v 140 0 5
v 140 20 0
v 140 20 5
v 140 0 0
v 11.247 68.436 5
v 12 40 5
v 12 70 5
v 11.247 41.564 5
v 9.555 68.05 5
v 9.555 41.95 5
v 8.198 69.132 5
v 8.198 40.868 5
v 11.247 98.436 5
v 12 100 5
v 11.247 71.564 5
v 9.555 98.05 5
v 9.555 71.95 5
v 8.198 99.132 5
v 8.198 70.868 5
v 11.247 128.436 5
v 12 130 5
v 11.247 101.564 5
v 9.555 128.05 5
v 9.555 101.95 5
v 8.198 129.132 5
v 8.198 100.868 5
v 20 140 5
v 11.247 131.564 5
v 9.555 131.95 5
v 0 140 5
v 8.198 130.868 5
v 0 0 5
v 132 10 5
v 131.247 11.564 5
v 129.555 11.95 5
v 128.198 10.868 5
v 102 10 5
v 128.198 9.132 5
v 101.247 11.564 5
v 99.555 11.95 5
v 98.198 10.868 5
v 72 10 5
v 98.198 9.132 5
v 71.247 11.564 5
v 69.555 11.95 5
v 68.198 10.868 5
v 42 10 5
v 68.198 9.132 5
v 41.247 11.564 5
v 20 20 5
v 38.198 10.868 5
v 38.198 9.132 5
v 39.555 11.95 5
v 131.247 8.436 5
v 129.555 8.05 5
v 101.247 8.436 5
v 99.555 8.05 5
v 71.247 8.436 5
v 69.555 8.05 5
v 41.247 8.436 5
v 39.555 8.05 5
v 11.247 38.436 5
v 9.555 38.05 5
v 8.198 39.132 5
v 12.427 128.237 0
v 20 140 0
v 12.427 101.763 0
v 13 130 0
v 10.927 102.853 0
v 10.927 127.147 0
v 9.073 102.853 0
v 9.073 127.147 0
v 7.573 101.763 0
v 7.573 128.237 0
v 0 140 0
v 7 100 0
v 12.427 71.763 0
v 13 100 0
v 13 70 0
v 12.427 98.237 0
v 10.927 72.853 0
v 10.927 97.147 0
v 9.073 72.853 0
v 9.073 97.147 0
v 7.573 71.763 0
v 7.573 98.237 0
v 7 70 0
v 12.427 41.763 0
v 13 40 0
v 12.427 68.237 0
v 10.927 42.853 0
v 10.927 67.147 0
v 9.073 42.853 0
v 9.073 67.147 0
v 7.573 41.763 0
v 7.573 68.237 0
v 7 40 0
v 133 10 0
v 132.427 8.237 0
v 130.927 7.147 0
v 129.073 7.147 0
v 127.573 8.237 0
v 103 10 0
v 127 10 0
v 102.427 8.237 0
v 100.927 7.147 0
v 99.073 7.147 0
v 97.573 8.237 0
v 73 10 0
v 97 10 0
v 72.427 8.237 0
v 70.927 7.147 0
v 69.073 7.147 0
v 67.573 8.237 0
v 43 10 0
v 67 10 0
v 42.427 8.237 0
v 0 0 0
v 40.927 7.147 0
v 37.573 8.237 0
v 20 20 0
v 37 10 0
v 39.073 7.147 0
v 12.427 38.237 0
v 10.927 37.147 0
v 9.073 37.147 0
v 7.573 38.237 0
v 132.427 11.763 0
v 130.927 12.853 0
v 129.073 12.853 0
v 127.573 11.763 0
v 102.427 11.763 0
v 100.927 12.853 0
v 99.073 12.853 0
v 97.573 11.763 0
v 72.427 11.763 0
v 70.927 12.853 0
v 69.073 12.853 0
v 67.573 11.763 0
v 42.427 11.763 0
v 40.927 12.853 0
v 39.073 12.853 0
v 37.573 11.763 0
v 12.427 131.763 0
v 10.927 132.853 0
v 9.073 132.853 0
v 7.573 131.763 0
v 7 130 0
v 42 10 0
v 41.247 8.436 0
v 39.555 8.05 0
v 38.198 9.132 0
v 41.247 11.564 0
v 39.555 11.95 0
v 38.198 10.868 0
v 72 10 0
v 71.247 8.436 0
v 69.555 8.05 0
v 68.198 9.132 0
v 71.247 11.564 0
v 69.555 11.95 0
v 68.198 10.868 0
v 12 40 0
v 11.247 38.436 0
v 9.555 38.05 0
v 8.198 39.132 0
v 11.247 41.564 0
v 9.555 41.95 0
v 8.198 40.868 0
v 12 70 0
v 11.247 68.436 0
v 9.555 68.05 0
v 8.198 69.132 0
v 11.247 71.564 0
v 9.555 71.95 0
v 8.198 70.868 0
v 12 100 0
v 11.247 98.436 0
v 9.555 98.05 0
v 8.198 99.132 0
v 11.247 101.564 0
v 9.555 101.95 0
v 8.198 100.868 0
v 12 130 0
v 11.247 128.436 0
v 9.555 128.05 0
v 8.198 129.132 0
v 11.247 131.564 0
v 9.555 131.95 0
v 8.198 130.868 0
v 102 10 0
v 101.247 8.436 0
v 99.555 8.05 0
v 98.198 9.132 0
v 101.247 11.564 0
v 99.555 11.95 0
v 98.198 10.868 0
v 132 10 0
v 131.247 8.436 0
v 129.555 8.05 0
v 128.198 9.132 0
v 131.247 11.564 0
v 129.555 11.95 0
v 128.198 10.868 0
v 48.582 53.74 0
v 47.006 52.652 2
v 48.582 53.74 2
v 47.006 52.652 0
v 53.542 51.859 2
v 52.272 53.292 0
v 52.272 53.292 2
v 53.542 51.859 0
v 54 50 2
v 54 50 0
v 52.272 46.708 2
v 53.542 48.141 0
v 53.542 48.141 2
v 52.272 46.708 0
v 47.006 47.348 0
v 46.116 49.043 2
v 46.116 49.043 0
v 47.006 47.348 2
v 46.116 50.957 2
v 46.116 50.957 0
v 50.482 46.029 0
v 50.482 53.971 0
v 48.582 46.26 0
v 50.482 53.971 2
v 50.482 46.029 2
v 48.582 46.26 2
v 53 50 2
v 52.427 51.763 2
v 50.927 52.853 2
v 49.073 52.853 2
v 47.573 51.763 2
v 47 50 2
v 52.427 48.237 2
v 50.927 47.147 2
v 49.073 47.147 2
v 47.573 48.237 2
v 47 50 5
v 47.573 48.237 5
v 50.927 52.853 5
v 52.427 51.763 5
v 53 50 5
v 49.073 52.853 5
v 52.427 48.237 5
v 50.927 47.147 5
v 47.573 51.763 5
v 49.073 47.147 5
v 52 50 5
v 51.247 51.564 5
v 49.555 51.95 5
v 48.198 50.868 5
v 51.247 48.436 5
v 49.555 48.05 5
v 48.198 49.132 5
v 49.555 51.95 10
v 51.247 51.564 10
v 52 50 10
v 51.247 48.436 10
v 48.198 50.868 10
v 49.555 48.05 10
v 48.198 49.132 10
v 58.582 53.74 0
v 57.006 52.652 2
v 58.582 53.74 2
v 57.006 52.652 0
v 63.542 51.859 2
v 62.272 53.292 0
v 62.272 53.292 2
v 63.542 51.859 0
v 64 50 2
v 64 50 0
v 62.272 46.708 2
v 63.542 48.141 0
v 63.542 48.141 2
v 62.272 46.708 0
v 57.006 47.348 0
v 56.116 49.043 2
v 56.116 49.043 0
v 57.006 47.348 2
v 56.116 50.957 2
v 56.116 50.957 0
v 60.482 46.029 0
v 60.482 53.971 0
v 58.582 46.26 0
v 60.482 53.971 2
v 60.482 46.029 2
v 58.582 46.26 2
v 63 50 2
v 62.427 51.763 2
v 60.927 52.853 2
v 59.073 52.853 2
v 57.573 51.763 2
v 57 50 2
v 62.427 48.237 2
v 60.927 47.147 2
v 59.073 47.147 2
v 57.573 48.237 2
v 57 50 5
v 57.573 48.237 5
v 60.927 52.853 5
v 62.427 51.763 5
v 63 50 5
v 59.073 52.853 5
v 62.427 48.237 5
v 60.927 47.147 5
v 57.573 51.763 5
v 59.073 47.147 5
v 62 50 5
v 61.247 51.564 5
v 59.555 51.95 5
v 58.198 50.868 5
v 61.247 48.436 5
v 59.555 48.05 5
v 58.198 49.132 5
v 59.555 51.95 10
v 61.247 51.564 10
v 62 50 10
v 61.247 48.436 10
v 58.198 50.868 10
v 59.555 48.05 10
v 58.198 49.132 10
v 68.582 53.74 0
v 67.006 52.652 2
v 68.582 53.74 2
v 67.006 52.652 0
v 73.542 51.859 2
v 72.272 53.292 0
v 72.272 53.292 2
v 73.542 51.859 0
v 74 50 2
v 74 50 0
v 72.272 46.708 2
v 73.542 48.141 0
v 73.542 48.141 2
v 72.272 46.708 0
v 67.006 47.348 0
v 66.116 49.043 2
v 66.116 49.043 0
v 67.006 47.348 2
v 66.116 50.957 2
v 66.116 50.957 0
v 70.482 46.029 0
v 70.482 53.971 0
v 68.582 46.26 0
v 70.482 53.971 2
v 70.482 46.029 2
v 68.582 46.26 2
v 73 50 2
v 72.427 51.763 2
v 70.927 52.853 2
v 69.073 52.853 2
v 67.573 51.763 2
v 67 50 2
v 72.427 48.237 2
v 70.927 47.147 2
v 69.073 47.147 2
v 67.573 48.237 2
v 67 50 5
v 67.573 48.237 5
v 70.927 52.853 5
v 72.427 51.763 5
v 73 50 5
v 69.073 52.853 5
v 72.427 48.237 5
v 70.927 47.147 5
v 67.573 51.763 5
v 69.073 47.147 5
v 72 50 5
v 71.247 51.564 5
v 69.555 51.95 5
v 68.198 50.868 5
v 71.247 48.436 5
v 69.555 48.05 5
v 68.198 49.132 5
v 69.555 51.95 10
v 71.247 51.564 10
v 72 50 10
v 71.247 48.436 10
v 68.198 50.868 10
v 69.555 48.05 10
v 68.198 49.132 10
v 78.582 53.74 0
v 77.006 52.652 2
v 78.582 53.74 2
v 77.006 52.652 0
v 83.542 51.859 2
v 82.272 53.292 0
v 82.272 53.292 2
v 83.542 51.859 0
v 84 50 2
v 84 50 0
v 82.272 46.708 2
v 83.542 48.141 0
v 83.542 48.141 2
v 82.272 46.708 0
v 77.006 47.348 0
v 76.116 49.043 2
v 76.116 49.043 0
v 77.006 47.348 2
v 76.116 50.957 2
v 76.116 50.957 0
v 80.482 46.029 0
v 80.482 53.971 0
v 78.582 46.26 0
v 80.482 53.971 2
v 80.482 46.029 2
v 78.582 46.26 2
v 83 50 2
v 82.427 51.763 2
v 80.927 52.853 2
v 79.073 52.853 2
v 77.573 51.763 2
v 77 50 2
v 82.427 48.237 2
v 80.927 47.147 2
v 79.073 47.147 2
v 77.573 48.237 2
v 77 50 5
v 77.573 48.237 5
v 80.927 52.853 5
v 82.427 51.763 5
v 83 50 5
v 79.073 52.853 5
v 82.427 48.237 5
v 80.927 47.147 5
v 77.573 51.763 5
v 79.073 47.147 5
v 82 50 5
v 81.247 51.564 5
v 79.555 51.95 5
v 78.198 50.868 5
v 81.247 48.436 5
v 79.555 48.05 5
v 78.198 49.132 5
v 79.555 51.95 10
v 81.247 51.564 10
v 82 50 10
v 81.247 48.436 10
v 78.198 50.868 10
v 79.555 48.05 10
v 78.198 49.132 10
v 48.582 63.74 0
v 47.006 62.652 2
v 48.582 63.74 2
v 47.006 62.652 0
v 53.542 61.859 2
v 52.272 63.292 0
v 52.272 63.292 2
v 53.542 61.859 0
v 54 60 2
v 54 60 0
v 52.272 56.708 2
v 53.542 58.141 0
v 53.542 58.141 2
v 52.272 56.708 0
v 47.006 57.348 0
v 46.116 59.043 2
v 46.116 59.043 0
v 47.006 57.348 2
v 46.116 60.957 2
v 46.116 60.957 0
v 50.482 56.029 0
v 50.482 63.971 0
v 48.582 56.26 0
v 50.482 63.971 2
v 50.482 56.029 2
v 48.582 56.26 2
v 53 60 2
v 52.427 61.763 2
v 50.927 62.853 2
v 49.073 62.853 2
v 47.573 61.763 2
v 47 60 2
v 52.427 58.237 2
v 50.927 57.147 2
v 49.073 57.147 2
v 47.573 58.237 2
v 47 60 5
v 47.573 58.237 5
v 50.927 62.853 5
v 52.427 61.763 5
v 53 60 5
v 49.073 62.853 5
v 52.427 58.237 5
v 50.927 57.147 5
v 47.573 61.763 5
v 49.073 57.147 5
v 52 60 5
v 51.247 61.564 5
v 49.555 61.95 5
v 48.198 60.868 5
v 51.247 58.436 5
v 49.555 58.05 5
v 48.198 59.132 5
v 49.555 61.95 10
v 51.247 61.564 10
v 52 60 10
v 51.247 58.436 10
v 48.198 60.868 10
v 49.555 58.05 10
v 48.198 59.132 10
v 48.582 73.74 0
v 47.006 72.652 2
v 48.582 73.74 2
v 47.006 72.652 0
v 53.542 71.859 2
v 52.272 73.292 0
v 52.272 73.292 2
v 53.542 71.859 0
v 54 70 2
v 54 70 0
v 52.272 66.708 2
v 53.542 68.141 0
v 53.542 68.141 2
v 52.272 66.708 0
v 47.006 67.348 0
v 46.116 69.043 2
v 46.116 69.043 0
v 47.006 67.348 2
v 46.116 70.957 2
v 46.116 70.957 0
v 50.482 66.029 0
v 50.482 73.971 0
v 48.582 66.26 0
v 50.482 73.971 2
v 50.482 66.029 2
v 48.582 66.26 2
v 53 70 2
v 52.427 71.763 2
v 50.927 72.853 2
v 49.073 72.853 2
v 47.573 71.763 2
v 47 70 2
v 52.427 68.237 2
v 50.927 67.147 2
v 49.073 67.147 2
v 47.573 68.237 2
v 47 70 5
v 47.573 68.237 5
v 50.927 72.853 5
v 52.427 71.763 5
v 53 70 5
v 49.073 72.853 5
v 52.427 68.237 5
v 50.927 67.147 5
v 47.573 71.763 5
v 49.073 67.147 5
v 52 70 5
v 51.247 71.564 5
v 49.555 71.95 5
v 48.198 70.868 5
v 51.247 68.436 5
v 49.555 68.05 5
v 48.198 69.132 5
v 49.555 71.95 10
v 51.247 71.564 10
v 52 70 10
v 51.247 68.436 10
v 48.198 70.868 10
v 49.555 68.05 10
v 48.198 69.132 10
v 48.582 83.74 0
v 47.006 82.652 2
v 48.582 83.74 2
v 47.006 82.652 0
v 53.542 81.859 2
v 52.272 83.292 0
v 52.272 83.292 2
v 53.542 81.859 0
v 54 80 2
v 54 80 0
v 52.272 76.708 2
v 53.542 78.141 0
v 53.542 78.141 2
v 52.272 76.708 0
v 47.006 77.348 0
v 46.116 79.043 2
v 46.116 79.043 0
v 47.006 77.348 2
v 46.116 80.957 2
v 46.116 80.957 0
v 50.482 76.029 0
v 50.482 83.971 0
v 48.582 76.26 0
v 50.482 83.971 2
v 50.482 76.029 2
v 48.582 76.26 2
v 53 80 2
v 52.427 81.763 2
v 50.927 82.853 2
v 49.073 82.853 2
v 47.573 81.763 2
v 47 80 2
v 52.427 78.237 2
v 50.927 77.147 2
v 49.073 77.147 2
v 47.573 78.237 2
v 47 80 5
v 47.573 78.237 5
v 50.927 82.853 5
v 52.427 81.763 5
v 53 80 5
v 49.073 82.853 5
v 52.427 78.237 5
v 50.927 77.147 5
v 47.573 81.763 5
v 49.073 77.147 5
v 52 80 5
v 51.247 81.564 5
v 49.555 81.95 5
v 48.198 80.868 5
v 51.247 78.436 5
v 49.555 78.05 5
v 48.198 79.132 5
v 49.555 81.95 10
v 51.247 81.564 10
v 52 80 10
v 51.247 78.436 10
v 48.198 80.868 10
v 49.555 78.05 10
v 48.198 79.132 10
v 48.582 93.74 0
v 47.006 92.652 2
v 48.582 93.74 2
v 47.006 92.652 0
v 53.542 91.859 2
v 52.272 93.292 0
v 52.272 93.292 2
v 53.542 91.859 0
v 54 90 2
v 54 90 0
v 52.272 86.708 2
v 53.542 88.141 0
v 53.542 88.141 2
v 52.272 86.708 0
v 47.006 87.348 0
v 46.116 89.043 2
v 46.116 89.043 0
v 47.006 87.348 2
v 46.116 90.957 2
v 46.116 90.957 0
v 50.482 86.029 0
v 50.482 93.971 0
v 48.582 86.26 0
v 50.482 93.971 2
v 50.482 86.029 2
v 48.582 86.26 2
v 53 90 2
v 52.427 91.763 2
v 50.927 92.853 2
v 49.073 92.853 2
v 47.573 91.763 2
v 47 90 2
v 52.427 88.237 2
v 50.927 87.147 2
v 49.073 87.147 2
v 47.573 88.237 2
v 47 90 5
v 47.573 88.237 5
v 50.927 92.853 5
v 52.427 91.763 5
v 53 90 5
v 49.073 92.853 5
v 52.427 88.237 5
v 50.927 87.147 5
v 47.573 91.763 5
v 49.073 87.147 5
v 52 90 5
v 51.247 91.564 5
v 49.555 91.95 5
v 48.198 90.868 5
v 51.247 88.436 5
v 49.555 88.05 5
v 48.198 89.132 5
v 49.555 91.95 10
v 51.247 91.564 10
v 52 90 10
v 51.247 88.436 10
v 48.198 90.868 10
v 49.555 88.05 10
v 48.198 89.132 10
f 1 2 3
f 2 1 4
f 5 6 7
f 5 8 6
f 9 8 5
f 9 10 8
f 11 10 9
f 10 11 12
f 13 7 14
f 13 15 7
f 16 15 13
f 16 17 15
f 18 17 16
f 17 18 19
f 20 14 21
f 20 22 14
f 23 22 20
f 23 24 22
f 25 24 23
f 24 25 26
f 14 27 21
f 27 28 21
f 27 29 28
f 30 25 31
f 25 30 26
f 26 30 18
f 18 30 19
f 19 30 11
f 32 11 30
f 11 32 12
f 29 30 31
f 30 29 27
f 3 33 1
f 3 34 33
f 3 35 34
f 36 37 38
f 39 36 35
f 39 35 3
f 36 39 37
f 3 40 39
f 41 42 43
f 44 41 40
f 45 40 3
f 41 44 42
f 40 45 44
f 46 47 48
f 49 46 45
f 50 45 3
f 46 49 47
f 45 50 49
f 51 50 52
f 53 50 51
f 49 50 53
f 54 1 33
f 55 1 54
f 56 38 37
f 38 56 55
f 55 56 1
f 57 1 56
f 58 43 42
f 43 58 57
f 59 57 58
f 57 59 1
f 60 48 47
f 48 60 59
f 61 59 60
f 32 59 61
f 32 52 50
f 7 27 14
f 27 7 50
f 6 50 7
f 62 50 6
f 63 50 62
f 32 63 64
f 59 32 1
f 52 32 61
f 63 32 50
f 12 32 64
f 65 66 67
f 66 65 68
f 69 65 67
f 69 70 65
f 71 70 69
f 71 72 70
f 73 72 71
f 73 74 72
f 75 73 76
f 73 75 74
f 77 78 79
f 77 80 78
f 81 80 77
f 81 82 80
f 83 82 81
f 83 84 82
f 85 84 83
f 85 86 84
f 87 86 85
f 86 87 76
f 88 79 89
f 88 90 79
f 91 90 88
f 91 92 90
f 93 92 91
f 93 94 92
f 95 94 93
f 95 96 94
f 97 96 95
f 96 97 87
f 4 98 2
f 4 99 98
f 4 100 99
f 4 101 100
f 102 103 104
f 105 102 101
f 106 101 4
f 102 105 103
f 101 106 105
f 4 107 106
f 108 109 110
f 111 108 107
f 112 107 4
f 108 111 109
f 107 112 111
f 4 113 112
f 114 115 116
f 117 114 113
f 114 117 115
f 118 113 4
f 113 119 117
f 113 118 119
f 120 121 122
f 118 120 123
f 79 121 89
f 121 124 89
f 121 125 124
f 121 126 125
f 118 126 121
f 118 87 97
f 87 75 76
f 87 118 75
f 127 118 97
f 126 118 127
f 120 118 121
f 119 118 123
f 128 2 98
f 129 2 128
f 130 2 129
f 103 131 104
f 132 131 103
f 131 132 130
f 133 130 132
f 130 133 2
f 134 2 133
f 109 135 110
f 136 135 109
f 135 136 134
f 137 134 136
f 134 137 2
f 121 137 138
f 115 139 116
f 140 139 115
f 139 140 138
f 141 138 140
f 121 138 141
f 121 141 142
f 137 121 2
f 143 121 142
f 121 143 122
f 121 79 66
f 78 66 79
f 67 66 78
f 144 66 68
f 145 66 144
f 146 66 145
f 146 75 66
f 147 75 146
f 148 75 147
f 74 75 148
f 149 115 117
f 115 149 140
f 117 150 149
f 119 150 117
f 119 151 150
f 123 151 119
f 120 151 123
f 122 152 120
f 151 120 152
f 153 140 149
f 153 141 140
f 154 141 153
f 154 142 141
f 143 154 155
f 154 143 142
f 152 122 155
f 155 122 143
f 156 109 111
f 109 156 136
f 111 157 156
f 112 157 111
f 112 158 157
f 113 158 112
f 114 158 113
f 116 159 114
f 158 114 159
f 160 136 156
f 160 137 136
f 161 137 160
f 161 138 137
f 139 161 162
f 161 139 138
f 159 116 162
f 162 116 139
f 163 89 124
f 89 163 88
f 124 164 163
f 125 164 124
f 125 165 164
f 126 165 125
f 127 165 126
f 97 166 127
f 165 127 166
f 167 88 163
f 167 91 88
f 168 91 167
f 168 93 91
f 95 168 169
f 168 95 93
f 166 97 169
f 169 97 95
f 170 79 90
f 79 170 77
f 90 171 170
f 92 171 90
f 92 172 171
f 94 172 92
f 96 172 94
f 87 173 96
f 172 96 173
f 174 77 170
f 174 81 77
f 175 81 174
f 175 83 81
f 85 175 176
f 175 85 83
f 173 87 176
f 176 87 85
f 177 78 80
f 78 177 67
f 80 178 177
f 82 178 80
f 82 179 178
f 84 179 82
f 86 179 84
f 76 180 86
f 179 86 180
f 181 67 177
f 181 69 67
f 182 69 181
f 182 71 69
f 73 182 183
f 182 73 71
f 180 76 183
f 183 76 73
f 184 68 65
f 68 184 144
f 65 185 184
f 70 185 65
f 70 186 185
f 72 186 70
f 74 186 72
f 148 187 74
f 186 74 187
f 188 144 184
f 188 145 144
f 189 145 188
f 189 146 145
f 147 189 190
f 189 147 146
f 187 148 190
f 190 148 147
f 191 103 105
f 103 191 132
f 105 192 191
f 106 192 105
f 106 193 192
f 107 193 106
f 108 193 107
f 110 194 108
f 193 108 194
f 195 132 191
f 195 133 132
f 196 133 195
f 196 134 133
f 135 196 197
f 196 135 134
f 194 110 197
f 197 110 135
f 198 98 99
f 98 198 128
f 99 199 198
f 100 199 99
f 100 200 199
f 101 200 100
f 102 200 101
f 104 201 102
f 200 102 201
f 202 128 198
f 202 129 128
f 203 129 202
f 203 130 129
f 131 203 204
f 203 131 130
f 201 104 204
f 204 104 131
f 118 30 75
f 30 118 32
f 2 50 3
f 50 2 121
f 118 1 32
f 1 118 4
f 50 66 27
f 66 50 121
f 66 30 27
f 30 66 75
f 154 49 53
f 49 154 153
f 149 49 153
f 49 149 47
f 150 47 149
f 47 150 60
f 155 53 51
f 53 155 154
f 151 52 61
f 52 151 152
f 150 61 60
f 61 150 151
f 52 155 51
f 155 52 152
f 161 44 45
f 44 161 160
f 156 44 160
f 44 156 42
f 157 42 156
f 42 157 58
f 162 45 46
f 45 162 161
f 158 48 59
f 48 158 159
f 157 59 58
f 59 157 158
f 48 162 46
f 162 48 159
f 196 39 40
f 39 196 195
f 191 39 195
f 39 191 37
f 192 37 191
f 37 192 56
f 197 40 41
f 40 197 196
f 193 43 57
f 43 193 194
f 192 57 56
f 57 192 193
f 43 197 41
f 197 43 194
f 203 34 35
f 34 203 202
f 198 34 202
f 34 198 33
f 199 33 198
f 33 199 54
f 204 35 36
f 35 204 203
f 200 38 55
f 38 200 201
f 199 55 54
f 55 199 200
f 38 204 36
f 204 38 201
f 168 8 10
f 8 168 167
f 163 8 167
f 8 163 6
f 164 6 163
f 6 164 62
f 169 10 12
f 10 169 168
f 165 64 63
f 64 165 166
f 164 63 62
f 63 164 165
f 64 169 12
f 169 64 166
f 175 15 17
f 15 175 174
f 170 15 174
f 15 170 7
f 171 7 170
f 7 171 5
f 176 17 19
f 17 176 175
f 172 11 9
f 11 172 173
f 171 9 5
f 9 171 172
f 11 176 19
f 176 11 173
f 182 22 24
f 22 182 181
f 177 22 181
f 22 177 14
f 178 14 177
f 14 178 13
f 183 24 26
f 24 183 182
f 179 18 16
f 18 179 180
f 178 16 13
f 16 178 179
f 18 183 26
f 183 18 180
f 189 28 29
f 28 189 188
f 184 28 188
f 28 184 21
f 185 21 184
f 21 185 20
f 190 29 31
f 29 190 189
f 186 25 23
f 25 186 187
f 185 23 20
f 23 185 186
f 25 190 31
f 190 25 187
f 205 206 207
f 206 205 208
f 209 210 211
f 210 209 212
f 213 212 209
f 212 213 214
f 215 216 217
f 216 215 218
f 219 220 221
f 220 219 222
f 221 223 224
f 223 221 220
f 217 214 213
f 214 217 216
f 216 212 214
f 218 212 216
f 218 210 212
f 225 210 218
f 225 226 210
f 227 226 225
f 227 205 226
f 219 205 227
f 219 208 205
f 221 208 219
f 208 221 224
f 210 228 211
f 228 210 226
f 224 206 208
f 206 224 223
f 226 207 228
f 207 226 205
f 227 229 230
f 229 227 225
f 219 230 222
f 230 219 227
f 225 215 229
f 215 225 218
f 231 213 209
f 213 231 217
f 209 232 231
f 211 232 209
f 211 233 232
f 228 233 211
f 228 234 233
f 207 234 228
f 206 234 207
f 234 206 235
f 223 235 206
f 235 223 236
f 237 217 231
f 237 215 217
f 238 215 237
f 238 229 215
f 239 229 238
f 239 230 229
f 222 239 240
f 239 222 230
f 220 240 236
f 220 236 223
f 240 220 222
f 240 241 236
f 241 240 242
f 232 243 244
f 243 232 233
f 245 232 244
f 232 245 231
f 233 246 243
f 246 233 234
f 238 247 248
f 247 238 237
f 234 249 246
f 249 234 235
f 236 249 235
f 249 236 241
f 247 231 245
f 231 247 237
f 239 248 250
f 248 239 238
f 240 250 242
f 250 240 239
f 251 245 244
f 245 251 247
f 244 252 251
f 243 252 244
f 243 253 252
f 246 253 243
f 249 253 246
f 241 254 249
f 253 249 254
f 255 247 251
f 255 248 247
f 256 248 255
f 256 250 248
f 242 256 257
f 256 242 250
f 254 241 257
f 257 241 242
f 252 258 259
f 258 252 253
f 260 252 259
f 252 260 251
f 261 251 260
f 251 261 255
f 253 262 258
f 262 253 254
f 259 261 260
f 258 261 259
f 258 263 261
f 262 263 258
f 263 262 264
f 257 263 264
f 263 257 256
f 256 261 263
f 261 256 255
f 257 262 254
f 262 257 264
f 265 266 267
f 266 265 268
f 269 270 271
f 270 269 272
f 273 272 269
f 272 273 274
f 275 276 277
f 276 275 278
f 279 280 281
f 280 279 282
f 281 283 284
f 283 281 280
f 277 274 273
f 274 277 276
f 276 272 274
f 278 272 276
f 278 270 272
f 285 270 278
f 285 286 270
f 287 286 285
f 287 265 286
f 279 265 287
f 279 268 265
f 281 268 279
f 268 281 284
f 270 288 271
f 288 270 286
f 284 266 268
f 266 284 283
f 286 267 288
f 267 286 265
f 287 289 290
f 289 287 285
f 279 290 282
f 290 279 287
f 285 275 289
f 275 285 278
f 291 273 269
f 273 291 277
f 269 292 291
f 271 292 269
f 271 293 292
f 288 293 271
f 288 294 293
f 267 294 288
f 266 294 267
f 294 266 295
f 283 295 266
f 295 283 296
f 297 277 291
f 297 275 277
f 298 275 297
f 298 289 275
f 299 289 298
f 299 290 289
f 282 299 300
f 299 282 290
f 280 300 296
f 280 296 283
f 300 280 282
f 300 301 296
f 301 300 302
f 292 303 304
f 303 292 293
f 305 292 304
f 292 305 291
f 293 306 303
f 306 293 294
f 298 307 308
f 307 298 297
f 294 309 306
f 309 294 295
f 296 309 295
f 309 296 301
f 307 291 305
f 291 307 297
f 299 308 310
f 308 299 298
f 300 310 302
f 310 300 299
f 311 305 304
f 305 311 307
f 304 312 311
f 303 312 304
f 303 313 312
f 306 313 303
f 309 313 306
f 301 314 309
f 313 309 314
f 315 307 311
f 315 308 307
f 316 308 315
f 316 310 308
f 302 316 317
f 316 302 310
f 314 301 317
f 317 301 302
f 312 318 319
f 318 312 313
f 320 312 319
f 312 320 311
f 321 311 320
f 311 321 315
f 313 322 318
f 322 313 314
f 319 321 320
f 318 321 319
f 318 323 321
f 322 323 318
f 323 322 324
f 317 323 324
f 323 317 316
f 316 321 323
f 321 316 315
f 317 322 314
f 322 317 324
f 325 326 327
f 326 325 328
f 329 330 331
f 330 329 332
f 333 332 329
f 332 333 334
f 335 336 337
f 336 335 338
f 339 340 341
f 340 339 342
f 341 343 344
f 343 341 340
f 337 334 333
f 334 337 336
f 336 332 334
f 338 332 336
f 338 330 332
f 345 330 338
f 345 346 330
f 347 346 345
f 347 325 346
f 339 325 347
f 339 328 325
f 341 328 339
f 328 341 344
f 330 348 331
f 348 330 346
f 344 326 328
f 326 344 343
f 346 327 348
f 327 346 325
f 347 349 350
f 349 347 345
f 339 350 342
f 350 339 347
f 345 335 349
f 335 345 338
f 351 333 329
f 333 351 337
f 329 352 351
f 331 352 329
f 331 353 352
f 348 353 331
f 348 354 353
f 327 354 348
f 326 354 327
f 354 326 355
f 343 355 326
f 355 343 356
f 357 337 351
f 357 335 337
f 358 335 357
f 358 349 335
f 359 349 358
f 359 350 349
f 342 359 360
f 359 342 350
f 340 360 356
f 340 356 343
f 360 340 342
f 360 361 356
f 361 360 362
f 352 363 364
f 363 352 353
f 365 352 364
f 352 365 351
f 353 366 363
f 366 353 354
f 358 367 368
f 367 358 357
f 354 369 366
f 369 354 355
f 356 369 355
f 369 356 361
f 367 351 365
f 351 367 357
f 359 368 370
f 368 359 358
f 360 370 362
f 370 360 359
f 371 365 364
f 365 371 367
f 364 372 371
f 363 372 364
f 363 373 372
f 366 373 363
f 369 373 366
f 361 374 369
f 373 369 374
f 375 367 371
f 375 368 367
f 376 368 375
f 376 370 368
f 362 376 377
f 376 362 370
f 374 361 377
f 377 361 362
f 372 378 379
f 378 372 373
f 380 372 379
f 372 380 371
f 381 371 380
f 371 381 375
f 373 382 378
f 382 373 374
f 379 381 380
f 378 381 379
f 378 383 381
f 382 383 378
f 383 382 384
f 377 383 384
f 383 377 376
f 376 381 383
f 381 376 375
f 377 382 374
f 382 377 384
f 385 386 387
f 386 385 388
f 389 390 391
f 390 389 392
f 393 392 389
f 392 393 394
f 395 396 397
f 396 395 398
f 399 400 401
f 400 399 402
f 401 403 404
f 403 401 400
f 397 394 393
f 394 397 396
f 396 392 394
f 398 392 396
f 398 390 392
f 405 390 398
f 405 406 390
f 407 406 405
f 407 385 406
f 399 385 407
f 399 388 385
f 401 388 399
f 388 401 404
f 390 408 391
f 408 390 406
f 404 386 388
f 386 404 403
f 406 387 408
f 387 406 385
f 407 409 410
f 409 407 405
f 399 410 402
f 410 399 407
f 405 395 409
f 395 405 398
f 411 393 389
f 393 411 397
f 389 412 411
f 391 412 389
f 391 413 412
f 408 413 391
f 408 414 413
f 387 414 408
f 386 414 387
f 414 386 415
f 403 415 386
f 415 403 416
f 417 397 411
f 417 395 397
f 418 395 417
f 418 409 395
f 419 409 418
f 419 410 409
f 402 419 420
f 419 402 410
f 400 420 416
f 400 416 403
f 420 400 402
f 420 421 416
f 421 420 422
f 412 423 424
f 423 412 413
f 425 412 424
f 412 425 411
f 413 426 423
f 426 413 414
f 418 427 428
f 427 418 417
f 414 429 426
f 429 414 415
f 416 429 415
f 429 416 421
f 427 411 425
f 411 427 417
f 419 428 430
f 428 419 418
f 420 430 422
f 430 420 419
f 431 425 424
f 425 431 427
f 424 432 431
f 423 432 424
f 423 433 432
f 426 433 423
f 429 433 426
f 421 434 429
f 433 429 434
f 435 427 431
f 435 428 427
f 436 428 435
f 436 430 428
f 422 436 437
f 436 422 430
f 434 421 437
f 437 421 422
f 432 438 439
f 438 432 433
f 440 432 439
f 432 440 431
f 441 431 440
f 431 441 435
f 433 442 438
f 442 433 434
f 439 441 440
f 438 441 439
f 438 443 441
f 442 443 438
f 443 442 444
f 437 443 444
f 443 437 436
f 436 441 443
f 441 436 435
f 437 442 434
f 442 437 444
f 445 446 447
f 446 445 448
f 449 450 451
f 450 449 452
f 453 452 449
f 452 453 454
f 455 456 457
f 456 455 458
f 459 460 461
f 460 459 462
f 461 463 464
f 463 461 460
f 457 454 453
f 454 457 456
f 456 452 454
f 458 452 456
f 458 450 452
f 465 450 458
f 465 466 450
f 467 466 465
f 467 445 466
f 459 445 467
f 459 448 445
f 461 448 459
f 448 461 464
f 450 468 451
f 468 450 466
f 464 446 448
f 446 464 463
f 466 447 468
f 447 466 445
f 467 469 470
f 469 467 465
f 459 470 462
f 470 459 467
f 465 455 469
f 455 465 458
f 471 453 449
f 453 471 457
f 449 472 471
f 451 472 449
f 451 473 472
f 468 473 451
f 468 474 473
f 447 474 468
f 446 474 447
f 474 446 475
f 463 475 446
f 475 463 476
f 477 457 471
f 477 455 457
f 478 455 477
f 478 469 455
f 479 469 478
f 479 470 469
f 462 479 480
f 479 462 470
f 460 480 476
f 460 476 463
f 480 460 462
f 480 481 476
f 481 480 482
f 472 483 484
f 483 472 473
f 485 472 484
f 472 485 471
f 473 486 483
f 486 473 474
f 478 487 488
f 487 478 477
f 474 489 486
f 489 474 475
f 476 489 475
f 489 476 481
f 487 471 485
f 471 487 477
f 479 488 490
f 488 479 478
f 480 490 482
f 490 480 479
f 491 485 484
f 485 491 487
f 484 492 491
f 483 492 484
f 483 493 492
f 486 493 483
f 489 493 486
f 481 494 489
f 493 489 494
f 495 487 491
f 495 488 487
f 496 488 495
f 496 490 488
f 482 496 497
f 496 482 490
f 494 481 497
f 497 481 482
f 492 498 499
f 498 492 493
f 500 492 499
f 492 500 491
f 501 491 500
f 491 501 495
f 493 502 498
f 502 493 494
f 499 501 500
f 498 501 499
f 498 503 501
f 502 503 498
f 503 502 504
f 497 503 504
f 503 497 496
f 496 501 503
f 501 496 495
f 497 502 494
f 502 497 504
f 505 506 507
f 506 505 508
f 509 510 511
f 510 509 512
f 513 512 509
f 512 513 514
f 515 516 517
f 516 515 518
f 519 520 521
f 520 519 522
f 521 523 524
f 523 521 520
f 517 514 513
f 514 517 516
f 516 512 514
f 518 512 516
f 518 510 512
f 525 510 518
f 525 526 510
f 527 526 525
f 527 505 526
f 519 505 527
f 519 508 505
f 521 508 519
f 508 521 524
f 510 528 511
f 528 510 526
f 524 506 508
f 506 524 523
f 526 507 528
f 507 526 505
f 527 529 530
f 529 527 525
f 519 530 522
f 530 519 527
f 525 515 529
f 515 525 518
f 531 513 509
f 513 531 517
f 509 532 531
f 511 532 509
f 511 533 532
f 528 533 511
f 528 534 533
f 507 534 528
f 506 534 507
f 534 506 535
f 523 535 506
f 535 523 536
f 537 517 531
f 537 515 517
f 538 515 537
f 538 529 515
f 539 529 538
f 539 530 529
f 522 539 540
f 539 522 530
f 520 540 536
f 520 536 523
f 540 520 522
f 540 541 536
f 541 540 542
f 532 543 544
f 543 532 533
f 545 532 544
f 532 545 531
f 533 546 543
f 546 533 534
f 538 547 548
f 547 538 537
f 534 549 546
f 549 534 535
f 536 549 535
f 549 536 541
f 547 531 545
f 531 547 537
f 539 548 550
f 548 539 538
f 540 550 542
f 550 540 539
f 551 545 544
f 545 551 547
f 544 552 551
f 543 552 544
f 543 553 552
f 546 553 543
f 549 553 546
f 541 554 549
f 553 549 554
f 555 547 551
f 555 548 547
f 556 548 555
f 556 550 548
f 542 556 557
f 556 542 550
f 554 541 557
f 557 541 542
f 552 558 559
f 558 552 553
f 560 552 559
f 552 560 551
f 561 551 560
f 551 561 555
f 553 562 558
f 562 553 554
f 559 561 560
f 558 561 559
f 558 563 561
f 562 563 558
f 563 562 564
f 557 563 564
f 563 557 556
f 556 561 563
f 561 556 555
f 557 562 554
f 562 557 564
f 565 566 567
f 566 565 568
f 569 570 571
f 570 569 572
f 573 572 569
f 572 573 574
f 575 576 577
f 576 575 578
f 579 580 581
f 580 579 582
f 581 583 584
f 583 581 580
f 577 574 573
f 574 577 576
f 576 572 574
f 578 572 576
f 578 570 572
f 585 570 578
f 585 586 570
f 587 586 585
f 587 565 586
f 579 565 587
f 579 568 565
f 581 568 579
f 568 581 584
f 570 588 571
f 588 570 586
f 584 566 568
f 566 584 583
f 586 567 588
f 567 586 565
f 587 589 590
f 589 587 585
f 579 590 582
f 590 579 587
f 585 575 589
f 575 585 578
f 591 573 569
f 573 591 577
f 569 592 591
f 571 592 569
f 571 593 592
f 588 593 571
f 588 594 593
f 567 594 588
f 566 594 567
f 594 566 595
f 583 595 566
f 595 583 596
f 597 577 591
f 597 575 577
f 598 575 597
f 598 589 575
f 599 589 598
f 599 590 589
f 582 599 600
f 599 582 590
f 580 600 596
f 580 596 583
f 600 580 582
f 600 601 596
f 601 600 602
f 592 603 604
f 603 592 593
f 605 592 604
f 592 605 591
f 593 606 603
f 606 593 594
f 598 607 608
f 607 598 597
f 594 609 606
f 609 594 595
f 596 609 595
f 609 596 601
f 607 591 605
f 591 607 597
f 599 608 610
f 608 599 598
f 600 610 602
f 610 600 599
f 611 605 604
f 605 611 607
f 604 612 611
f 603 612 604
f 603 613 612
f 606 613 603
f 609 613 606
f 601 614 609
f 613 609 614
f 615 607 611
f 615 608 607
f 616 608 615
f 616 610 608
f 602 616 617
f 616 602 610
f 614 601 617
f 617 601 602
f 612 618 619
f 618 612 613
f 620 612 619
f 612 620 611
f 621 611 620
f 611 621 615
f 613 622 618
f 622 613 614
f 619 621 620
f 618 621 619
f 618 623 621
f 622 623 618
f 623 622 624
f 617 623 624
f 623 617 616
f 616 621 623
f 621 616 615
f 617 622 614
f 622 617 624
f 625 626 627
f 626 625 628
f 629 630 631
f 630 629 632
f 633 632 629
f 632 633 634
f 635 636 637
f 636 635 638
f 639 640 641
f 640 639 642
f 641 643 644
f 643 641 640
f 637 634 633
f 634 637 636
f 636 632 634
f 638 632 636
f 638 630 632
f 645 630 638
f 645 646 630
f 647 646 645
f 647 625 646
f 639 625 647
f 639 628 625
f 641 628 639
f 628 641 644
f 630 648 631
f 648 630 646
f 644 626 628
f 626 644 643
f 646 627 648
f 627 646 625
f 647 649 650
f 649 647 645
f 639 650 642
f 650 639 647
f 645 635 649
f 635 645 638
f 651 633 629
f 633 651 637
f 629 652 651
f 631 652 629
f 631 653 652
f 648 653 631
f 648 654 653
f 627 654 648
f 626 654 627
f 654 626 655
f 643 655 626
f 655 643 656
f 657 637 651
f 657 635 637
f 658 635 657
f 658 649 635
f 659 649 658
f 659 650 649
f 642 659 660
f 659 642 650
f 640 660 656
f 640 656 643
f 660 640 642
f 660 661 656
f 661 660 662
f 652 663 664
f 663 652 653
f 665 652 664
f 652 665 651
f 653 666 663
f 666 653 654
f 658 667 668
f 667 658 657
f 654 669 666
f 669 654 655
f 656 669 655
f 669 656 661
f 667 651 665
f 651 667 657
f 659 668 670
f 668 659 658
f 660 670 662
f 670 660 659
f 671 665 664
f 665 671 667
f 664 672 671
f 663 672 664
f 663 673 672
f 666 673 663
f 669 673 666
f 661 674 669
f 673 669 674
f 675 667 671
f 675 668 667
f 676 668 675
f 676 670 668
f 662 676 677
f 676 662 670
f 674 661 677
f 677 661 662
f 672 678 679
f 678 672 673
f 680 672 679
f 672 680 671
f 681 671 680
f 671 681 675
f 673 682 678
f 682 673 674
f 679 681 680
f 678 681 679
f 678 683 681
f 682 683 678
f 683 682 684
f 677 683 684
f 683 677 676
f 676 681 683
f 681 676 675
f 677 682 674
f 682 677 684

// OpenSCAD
// https://openscad.org/cheatsheet/

module mesh_holder(){
    length = 140;
    height = 5;
    pin_radious = 2;
    
    module mesh_holder_frame(length, height){
        union() {
            cube([length, 20, height]);
            cube([20, length, height]);
        }
    }
        
    module pin(height){
        union(){
            cylinder(h=height - 3, r=pin_radious + 2);
            cylinder(h=height, r=pin_radious + 1);
            cylinder(h=height + height, r=pin_radious);
        }
    }

    module pin_hole(height, x, y){
        translate([x, y, 0]) { 
            pin(height);
        }
    }
        
    module mesh_holder_core(length, height){
        difference(){
            mesh_holder_frame(length, height);
            
            hole_locations = [
                [40, 10],
                [70, 10],
                [100, 10],
                [130, 10],
            
                [10, 40],
                [10, 70],
                [10, 100],
                [10, 130],
            ];
            
            for (hole_loc = hole_locations){
                translate([0, 0, -height]){
                    pin_hole(height, hole_loc[0], hole_loc[1]);
                }
            }
        }
    }
        
    module brim(length, height){
        cube([4, length, height * 2]);
    }
    
    module clip(){
        union(){
            translate([-5, 40, 0]){
                cube([5, 10, 4]);
            };
            
            translate([-5, 40, 0]){
                cube([5, 10, 4]);
            };
        }
    }
    
    union(){
        mesh_holder_core(length, height);
        //brim(length, height);
        //clip();
        
        translate([50, 50, 0]){
            pin(height);
        }
        
        translate([60, 50, 0]){
            pin(height);
        }
        
        translate([70, 50, 0]){
            pin(height);
        }
        
        translate([80, 50, 0]){
            pin(height);
        }
        
        translate([50, 60, 0]){
            pin(height);
        }
        
        translate([50, 70, 0]){
            pin(height);
        }
        
        translate([50, 80, 0]){
            pin(height);
        }
        
        translate([50, 90, 0]){
            pin(height);
        }
    }
}

mesh_holder();
